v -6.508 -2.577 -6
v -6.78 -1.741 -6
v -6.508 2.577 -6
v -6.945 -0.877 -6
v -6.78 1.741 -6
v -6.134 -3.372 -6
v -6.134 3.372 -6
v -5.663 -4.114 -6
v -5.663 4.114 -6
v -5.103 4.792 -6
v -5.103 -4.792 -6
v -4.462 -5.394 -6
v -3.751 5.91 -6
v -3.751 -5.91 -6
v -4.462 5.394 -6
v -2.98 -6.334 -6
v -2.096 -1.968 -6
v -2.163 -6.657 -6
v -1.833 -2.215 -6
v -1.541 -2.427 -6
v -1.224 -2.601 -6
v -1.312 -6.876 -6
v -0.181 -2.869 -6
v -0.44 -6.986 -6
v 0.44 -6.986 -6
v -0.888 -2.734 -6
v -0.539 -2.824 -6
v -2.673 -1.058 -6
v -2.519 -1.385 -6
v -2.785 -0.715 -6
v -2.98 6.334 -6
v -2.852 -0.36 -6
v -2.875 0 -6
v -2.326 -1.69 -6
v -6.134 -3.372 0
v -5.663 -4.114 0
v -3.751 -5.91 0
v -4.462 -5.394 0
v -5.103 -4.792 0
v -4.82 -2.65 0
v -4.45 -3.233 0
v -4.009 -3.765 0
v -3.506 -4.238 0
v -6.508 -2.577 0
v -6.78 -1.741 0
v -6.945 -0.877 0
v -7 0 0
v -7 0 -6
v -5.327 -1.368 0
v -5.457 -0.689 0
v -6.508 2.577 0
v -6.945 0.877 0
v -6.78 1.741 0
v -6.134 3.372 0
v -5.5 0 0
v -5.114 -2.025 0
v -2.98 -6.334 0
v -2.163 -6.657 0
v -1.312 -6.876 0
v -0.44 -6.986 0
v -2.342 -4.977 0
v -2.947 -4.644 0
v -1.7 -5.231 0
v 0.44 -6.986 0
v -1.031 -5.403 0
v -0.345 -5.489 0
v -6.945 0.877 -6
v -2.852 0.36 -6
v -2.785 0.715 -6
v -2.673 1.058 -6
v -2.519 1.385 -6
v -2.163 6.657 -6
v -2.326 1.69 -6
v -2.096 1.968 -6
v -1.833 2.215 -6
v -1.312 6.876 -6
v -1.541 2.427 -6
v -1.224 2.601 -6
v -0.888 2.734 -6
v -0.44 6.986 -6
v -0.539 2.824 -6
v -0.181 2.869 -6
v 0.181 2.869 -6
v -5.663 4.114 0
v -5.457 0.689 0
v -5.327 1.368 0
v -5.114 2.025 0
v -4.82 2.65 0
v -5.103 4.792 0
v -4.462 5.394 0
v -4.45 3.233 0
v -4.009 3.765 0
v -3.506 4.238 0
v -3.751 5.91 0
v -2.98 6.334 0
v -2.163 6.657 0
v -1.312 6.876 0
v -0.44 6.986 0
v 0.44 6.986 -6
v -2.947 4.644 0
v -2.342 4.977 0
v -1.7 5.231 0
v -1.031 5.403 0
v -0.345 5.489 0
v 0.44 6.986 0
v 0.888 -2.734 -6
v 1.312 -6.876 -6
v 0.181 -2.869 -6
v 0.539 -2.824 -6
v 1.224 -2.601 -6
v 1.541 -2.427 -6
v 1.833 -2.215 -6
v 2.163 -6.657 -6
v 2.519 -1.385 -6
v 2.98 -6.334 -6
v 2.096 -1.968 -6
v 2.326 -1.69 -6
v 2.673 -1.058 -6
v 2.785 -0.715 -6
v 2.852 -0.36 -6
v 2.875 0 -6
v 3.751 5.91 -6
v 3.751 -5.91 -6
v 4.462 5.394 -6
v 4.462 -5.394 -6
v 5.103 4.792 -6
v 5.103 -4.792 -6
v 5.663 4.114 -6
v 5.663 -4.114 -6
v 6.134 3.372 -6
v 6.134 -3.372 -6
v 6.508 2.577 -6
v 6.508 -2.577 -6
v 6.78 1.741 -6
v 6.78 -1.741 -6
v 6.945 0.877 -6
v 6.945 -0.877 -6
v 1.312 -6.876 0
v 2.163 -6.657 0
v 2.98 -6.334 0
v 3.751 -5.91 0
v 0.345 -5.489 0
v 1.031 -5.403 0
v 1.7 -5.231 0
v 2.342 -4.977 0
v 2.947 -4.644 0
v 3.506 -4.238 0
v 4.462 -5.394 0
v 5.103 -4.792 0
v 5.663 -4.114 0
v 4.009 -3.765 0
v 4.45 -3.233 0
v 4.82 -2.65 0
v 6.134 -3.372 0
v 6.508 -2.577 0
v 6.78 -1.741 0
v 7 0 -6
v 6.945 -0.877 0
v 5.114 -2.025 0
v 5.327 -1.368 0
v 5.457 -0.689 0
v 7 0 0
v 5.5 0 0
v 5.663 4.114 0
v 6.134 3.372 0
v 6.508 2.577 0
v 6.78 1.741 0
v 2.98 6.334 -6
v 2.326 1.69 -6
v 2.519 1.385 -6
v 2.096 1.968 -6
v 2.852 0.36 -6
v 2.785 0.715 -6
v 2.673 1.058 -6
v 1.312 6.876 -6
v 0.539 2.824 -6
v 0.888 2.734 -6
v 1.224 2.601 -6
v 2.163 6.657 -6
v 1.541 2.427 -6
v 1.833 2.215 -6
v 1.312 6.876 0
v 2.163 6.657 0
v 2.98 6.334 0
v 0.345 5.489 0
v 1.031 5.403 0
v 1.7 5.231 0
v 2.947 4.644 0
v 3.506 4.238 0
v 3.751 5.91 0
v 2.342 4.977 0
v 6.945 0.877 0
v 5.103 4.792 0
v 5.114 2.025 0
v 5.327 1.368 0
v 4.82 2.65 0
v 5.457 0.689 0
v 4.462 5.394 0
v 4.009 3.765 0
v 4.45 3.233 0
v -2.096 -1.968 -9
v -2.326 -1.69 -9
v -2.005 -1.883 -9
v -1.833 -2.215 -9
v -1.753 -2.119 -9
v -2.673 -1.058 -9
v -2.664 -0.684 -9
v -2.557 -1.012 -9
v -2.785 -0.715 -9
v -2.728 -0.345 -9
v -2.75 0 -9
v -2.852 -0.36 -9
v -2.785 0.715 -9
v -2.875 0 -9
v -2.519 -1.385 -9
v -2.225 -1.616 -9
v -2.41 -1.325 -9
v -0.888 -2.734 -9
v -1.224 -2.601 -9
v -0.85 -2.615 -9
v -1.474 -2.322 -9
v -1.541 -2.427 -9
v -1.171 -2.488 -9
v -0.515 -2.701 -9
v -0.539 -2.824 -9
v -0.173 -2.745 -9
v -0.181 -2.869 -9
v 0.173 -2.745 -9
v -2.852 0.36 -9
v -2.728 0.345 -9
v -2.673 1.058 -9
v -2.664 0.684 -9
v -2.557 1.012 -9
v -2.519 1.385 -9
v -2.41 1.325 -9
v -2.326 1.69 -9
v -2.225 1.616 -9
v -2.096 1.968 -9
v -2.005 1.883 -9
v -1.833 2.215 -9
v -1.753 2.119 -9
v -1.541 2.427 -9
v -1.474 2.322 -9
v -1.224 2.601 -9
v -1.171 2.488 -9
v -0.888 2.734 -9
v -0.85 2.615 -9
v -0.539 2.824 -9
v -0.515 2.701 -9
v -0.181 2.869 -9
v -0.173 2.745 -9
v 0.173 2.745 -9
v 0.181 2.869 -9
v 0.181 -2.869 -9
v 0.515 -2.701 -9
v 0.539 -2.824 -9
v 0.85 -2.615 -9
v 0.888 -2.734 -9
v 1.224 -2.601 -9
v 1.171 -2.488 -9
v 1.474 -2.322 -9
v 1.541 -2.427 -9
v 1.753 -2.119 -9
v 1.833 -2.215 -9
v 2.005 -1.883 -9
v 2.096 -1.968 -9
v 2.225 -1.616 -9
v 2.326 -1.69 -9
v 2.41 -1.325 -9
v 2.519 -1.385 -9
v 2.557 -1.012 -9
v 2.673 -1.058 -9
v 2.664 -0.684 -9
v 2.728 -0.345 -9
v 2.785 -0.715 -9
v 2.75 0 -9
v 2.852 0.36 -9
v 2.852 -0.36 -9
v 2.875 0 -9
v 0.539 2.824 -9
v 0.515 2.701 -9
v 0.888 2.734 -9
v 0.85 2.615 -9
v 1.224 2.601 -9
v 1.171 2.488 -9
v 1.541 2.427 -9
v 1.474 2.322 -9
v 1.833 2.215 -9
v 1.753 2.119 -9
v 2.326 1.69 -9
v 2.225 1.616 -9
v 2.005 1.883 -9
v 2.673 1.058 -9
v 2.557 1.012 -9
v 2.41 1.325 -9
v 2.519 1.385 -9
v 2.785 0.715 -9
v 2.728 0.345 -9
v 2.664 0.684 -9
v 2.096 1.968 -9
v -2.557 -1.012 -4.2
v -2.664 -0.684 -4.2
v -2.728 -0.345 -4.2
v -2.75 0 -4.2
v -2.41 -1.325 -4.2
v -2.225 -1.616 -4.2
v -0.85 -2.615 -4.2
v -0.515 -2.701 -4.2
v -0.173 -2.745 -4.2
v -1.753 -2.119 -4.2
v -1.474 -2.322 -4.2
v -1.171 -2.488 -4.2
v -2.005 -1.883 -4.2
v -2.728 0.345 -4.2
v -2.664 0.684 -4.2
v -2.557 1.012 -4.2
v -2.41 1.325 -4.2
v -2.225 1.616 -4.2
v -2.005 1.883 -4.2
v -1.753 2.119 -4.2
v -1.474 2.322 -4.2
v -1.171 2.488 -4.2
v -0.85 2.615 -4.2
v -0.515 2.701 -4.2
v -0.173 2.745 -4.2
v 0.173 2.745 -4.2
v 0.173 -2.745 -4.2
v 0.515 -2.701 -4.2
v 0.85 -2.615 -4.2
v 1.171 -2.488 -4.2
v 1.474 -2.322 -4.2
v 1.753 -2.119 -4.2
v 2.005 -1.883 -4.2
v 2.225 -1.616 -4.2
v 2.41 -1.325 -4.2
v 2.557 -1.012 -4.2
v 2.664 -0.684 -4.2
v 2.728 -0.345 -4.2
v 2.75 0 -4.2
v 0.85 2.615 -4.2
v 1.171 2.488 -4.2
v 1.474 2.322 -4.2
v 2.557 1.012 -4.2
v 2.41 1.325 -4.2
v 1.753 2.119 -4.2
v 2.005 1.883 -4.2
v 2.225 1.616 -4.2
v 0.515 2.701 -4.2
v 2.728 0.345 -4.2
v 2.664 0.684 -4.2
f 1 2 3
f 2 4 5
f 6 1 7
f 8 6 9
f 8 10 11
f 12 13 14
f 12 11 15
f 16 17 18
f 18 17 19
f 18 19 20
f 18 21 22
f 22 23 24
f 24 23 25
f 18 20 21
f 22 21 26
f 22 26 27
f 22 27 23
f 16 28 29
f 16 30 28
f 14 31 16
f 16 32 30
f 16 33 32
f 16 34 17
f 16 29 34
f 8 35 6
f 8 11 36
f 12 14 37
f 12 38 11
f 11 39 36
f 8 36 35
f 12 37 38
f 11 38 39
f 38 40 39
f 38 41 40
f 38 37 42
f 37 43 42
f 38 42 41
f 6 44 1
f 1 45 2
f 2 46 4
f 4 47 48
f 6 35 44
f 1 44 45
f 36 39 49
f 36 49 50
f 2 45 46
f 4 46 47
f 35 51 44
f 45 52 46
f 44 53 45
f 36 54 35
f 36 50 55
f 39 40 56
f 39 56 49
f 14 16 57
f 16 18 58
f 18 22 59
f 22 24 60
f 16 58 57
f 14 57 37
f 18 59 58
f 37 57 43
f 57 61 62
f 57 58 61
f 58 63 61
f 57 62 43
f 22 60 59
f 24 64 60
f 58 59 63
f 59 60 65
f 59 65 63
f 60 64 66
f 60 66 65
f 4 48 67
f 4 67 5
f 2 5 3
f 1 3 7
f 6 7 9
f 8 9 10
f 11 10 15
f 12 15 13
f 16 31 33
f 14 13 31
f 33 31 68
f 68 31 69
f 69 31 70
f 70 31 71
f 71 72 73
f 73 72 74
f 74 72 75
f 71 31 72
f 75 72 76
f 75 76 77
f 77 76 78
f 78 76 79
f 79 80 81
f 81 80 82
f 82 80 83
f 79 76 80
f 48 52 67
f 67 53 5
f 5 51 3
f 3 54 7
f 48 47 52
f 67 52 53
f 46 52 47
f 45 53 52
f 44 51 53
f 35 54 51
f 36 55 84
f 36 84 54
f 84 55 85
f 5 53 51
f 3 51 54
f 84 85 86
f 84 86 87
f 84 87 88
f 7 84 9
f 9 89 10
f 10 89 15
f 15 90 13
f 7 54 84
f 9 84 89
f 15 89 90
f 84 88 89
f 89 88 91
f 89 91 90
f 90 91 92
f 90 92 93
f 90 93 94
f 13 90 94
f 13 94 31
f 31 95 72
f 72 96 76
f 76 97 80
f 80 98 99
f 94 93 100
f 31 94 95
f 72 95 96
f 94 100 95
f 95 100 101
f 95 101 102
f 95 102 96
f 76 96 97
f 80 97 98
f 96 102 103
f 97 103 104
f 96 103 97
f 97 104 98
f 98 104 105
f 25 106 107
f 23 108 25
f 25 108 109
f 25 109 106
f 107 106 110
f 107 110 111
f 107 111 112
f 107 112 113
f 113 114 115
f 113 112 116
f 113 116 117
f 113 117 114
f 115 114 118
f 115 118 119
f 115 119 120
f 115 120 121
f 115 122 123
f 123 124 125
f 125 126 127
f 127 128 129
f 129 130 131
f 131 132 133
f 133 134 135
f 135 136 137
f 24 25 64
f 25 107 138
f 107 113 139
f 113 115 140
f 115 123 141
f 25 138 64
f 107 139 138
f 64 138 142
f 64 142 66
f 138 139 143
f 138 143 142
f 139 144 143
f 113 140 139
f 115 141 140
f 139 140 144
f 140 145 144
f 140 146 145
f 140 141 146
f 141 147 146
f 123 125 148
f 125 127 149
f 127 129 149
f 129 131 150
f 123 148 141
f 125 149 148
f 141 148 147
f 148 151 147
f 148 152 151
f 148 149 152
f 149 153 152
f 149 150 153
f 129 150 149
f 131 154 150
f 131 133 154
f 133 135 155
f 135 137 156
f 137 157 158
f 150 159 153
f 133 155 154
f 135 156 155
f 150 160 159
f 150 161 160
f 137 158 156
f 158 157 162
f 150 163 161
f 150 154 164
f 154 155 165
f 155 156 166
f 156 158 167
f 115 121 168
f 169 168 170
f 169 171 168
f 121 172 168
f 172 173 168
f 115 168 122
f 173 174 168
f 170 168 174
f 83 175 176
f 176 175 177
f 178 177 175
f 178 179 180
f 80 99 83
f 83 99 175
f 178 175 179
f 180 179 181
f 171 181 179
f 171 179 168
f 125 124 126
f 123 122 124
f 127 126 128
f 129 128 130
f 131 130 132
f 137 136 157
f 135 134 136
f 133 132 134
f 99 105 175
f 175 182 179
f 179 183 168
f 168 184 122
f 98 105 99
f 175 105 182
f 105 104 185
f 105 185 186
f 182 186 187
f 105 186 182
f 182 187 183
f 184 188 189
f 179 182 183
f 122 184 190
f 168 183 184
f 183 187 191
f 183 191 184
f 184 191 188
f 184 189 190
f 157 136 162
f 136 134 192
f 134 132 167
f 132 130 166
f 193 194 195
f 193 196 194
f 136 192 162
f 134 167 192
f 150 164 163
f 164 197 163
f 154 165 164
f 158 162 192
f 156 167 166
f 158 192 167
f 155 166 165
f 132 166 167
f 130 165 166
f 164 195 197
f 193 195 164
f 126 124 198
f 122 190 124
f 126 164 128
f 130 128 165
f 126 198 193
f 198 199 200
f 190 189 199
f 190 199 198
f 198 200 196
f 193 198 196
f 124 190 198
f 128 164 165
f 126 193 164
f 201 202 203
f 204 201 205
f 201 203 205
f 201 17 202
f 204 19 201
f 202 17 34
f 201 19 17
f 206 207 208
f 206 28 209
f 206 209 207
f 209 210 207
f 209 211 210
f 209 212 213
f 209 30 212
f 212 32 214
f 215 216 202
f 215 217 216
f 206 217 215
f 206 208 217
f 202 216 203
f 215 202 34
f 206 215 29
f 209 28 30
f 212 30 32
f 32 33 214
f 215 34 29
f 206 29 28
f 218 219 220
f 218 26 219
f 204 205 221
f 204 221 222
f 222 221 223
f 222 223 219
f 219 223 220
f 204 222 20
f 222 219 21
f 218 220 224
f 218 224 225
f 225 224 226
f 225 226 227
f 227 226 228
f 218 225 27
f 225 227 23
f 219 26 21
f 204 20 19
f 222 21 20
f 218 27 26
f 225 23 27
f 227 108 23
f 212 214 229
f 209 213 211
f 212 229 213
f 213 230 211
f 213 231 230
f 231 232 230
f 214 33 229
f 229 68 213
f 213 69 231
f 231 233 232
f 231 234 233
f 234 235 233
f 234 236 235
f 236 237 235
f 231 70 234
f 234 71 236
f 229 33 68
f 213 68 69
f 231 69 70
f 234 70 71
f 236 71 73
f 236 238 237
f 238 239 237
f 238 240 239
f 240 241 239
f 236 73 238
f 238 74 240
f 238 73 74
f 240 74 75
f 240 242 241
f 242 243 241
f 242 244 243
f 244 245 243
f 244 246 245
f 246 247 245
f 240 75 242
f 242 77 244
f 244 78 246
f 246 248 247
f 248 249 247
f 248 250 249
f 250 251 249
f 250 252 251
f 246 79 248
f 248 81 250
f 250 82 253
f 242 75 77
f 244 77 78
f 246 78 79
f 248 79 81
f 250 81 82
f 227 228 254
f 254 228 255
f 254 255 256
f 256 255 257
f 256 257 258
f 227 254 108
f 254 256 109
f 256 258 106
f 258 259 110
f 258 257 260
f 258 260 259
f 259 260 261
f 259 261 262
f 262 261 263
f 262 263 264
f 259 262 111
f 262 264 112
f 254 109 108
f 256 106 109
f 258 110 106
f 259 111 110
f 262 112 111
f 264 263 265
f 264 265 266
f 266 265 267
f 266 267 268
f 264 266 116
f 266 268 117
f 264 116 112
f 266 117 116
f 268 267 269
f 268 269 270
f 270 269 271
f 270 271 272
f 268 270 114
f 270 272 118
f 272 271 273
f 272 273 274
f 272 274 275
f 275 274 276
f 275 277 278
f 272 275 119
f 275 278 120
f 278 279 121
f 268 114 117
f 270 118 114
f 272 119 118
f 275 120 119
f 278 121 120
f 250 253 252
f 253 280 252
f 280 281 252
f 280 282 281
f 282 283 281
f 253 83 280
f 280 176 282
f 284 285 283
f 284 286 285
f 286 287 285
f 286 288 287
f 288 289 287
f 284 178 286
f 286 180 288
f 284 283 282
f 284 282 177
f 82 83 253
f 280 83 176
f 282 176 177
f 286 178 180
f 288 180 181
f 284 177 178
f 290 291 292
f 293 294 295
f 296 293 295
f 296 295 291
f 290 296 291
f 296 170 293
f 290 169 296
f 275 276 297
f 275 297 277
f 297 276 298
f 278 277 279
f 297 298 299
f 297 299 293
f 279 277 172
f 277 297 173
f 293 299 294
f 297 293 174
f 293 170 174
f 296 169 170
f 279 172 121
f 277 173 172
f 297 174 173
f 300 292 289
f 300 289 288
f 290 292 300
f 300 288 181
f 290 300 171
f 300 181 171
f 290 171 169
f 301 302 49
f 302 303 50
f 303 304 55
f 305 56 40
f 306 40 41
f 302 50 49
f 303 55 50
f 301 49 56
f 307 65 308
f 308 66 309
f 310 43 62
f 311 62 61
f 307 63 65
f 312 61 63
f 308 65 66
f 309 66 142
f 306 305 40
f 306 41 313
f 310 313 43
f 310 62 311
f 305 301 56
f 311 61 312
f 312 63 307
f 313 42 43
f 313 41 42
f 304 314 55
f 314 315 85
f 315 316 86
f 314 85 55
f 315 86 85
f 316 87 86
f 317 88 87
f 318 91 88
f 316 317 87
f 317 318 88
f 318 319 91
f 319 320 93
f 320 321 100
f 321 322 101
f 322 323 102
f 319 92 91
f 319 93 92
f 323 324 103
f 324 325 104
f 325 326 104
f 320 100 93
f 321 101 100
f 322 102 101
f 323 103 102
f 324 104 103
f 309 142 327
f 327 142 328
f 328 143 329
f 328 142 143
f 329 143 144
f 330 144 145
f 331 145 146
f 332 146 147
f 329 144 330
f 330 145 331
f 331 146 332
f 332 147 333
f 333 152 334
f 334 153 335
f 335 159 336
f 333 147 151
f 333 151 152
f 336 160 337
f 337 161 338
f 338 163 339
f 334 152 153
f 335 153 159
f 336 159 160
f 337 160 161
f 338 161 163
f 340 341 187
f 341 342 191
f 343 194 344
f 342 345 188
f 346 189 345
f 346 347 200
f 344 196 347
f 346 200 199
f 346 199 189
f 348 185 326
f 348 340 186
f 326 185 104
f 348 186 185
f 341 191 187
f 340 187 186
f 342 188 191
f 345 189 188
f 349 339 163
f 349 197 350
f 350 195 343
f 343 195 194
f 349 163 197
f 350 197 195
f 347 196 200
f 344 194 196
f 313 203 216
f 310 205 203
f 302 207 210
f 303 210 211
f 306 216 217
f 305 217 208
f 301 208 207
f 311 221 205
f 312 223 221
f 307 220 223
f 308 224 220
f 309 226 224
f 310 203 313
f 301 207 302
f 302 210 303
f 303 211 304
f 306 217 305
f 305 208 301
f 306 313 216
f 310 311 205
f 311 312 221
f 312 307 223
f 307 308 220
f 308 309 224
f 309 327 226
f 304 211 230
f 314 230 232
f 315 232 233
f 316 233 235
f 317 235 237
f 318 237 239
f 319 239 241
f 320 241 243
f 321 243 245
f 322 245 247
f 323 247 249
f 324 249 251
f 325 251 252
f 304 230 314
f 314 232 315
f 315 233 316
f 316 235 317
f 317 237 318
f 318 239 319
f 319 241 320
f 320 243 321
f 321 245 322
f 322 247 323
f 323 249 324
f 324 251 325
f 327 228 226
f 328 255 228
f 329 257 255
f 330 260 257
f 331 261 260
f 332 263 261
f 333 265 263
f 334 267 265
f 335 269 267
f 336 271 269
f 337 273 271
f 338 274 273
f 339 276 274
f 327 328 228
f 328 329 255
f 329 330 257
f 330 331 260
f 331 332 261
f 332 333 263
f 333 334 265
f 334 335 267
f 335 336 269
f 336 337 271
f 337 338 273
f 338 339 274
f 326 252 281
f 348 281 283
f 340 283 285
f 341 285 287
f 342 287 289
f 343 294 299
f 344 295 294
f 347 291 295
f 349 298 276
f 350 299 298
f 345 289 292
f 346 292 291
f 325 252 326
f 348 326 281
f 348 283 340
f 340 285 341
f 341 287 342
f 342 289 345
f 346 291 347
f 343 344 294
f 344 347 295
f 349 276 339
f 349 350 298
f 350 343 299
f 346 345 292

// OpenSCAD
$fn = 50;


difference() {
	union() {
		translate(v = [0, 0, -6.0000000000]) {
			cylinder(h = 6, r = 7.0000000000);
		}
		#translate(v = [0, 0, -9.0000000000]) {
			cylinder(h = 9, r = 2.8750000000);
		}
	}
	union() {
		translate(v = [0, 0, 0]) {
			rotate(a = [0, 0, 0]) {
				difference() {
					union() {
						translate(v = [0, 0, -9.0000000000]) {
							cylinder(h = 9, r = 2.2500000000);
						}
						translate(v = [0, 0, -4.2000000000]) {
							cylinder(h = 4.2000000000, r1 = 2.7500000000, r2 = 5.5000000000);
						}
						translate(v = [0, 0, -9.0000000000]) {
							cylinder(h = 9, r = 2.7500000000);
						}
						translate(v = [0, 0, -9.0000000000]) {
							cylinder(h = 9, r = 2.2500000000);
						}
					}
					union();
				}
			}
		}
	}
}
